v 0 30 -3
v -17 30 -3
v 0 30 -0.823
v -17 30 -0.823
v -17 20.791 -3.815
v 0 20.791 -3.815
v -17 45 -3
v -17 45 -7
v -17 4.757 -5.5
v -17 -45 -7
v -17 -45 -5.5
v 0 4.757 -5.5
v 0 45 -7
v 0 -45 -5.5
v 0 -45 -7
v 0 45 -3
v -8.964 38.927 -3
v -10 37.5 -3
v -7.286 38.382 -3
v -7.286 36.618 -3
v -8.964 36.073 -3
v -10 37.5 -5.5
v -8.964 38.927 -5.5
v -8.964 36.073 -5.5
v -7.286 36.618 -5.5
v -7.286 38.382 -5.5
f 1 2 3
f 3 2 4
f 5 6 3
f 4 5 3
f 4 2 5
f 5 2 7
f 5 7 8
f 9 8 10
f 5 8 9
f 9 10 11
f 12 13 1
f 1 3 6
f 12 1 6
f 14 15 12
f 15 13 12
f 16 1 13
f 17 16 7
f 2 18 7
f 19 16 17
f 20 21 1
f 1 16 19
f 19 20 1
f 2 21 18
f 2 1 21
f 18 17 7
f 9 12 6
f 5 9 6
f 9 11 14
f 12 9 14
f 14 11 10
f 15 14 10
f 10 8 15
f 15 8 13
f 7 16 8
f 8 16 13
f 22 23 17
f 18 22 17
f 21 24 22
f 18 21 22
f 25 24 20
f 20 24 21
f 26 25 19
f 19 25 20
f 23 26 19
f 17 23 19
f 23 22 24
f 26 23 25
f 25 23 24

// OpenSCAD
rotate ([0, 180, 0]) {
  difference(){
	translate([0,-45,0]) cube(size=[17,90,7]);
	translate([-1,30,-3]) cube(size=[20,20,6]);
	translate([0,0,-94]) rotate([0,90,0]) cylinder(h=40,r=100, center=true);
	translate([8.5, 37.5, 0]) cylinder(h=20,r=1.5,center=true);
	translate([-2,-90,-1]) cube(size=[20,90,7]);
  }
}
rotate([0,180,0]) translate([0,-45,5.5]) cube(size=[17,90,1.5]);
